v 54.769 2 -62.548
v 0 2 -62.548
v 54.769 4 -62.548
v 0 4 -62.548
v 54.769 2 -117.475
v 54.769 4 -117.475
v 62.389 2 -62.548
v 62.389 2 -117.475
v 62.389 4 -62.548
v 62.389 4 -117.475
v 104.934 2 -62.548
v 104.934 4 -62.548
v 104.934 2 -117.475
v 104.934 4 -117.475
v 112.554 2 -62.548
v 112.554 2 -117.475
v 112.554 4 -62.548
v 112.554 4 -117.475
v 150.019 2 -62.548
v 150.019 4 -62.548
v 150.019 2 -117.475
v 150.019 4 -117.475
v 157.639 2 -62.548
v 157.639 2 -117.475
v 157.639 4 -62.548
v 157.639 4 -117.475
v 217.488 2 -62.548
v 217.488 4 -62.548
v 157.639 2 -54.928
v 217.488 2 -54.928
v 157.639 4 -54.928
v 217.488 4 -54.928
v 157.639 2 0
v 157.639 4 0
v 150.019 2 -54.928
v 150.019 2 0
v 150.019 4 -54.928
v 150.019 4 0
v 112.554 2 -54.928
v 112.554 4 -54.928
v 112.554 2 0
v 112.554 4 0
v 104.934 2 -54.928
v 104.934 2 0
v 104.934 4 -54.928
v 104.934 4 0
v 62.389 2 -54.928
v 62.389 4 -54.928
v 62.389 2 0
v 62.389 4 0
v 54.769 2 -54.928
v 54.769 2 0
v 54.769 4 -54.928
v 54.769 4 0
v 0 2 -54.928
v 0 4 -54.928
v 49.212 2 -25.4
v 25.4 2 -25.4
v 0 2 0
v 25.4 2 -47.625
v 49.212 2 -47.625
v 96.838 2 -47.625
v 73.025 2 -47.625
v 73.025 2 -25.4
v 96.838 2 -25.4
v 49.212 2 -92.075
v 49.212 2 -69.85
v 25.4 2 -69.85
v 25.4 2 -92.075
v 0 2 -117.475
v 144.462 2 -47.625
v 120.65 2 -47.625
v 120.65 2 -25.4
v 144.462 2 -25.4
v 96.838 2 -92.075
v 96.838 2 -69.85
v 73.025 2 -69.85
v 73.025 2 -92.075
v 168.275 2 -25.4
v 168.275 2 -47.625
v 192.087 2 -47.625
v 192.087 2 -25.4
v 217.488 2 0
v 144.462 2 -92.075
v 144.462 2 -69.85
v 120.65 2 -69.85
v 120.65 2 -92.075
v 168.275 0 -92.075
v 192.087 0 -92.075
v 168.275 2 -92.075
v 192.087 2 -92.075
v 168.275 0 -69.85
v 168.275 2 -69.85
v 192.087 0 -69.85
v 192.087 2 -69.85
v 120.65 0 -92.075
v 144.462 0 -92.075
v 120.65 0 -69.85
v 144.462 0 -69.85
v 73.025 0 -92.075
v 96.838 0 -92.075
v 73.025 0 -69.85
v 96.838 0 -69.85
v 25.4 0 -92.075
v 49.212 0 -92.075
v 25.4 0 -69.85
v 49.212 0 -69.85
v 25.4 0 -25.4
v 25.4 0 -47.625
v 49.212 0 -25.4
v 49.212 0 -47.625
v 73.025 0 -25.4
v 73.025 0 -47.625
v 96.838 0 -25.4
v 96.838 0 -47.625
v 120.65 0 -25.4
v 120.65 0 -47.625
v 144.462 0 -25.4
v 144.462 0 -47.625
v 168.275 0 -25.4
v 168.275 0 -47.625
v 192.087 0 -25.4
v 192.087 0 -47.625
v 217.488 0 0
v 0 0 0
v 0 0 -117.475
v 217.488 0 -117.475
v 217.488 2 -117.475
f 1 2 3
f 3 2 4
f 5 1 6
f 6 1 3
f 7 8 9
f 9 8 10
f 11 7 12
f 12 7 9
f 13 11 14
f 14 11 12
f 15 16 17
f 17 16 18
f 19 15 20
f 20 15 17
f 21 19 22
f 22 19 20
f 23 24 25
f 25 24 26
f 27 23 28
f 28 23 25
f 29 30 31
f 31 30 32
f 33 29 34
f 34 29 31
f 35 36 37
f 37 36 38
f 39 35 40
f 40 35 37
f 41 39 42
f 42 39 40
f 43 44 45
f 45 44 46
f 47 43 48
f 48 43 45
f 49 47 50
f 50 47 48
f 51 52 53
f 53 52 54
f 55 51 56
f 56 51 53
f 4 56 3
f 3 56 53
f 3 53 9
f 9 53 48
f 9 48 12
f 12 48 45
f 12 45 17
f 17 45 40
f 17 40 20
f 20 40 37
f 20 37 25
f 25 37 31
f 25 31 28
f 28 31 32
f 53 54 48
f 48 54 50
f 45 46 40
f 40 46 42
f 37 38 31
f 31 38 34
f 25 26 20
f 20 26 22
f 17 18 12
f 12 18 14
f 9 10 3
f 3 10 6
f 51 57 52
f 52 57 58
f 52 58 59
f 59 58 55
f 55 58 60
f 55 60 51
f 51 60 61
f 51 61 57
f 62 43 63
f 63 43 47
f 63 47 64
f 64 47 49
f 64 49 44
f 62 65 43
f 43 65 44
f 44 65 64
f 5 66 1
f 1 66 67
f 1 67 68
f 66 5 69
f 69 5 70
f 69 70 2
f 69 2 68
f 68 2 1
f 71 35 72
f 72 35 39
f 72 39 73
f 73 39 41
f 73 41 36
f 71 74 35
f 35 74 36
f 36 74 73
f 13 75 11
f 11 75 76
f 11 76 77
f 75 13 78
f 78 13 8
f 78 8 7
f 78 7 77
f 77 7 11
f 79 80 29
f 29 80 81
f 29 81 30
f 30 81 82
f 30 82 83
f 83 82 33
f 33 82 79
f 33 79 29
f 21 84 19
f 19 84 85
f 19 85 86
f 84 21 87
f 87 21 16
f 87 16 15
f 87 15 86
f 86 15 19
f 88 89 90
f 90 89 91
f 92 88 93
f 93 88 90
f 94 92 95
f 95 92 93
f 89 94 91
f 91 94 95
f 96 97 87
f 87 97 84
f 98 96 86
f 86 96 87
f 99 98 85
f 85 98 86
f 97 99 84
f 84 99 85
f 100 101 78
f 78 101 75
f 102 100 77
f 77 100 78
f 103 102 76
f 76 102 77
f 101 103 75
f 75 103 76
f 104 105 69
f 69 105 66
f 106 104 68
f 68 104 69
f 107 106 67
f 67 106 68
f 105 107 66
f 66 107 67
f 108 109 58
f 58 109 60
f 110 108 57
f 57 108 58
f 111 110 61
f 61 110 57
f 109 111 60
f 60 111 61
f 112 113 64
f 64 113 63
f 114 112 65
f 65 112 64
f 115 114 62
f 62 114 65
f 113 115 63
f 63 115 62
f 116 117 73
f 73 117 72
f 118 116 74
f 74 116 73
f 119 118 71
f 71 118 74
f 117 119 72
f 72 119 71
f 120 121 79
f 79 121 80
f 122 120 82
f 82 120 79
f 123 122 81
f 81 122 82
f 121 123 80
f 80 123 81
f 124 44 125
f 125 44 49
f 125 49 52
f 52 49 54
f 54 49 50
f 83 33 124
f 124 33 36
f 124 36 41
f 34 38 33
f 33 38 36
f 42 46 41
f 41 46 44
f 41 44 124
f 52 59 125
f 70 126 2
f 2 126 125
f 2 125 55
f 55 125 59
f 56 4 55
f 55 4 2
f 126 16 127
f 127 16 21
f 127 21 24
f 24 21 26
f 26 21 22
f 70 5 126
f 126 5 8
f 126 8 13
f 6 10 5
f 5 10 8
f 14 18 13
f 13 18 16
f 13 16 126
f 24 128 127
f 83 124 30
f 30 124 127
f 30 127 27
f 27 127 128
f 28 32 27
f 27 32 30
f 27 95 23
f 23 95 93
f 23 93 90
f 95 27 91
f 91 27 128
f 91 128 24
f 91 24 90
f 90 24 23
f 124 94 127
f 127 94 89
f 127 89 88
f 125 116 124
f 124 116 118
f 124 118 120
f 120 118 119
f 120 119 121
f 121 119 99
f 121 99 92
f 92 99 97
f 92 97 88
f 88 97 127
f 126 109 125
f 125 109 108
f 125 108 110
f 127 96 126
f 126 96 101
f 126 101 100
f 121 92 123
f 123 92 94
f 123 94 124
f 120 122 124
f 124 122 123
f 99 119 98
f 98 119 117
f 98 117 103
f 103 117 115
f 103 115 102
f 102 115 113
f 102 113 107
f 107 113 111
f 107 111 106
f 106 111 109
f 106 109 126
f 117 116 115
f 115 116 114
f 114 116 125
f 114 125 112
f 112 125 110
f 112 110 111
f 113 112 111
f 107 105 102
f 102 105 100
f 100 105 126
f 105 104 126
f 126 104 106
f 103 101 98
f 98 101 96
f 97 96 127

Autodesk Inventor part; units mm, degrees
ref_plane "YZ Plane" through (0, 0, 0) normal (1, 0, 0) x (0, 1, 0)
ref_plane "XZ Plane" through (0, 0, 0) normal (0, 1, 0) x (-1, 0, 0)
ref_plane "XY Plane" through (0, 0, 0) normal (0, 0, 1) x (1, 0, 0)
sketch "Sketch1" plane through (0, 0, 0) normal (0, 1, 0) x (-1, 0, 0)
  line L0 (0, 0) -> (-25.4, 0) construction
  line L1 (-25.4, 0) -> (-25.4, -25.4) construction
  line L2 (-25.4, -25.4) -> (0, -25.4) construction
  line L3 (0, -25.4) -> (0, 0) construction
  line L4 (-25.4, -25.4) -> (-49.2125, -25.4) construction
  line L5 (-49.2125, -25.4) -> (-49.2125, -47.625) construction
  line L6 (-49.2125, -47.625) -> (-25.4, -47.625) construction
  line L7 (-25.4, -47.625) -> (-25.4, -25.4) construction
  line L8 (-73.025, -25.4) -> (-96.8375, -25.4) construction
  line L9 (-96.8375, -25.4) -> (-96.8375, -47.625) construction
  line L10 (-96.8375, -47.625) -> (-73.025, -47.625) construction
  line L11 (-73.025, -47.625) -> (-73.025, -25.4) construction
  line L12 (-120.65, -25.4) -> (-144.4625, -25.4) construction
  line L13 (-144.4625, -25.4) -> (-144.4625, -47.625) construction
  line L14 (-144.4625, -47.625) -> (-120.65, -47.625) construction
  line L15 (-120.65, -47.625) -> (-120.65, -25.4) construction
  line L16 (-168.275, -25.4) -> (-192.0875, -25.4) construction
  line L17 (-192.0875, -25.4) -> (-192.0875, -47.625) construction
  line L18 (-192.0875, -47.625) -> (-168.275, -47.625) construction
  line L19 (-168.275, -47.625) -> (-168.275, -25.4) construction
  line L20 (-25.4, -69.85) -> (-49.2125, -69.85) construction
  line L21 (-49.2125, -69.85) -> (-49.2125, -92.075) construction
  line L22 (-49.2125, -92.075) -> (-25.4, -92.075) construction
  line L23 (-25.4, -92.075) -> (-25.4, -69.85) construction
  line L24 (-73.025, -69.85) -> (-96.8375, -69.85) construction
  line L25 (-96.8375, -69.85) -> (-96.8375, -92.075) construction
  line L26 (-96.8375, -92.075) -> (-73.025, -92.075) construction
  line L27 (-73.025, -92.075) -> (-73.025, -69.85) construction
  line L28 (-120.65, -69.85) -> (-144.4625, -69.85) construction
  line L29 (-144.4625, -69.85) -> (-144.4625, -92.075) construction
  line L30 (-144.4625, -92.075) -> (-120.65, -92.075) construction
  line L31 (-120.65, -92.075) -> (-120.65, -69.85) construction
  line L32 (-168.275, -69.85) -> (-192.0875, -69.85) construction
  line L33 (-192.0875, -69.85) -> (-192.0875, -92.075) construction
  line L34 (-192.0875, -92.075) -> (-168.275, -92.075) construction
  line L35 (-168.275, -92.075) -> (-168.275, -69.85) construction
  line L36 (-192.0875, -92.075) -> (-217.4875, -92.075) construction
  line L37 (-217.4875, -92.075) -> (-217.4875, -117.475) construction
  line L38 (-217.4875, -117.475) -> (-192.0875, -117.475) construction
  line L39 (-192.0875, -117.475) -> (-192.0875, -92.075) construction
  line L40 (0, 0) -> (-217.4875, 0)
  line L41 (-217.4875, 0) -> (-217.4875, -117.475)
  line L42 (-217.4875, -117.475) -> (0, -117.475)
  line L43 (0, -117.475) -> (0, 0)
  line L44 (-192.0875, -92.075) -> (-168.275, -92.075)
  line L45 (-168.275, -92.075) -> (-168.275, -69.85)
  line L46 (-168.275, -69.85) -> (-192.0875, -69.85)
  line L47 (-192.0875, -69.85) -> (-192.0875, -92.075)
  line L48 (-144.4625, -92.075) -> (-120.65, -92.075)
  line L49 (-120.65, -92.075) -> (-120.65, -69.85)
  line L50 (-120.65, -69.85) -> (-144.4625, -69.85)
  line L51 (-144.4625, -69.85) -> (-144.4625, -92.075)
  line L52 (-96.8375, -92.075) -> (-73.025, -92.075)
  line L53 (-73.025, -92.075) -> (-73.025, -69.85)
  line L54 (-73.025, -69.85) -> (-96.8375, -69.85)
  line L55 (-96.8375, -69.85) -> (-96.8375, -92.075)
  line L56 (-49.2125, -92.075) -> (-25.4, -92.075)
  line L57 (-25.4, -92.075) -> (-25.4, -69.85)
  line L58 (-25.4, -69.85) -> (-49.2125, -69.85)
  line L59 (-49.2125, -69.85) -> (-49.2125, -92.075)
  line L60 (-25.4, -47.625) -> (-49.2125, -47.625)
  line L61 (-49.2125, -47.625) -> (-49.2125, -25.4)
  line L62 (-49.2125, -25.4) -> (-25.4, -25.4)
  line L63 (-25.4, -25.4) -> (-25.4, -47.625)
  line L64 (-73.025, -47.625) -> (-96.8375, -47.625)
  line L65 (-96.8375, -47.625) -> (-96.8375, -25.4)
  line L66 (-96.8375, -25.4) -> (-73.025, -25.4)
  line L67 (-73.025, -25.4) -> (-73.025, -47.625)
  line L68 (-120.65, -47.625) -> (-144.4625, -47.625)
  line L69 (-144.4625, -47.625) -> (-144.4625, -25.4)
  line L70 (-144.4625, -25.4) -> (-120.65, -25.4)
  line L71 (-120.65, -25.4) -> (-120.65, -47.625)
  line L72 (-168.275, -47.625) -> (-192.0875, -47.625)
  line L73 (-192.0875, -47.625) -> (-192.0875, -25.4)
  line L74 (-192.0875, -25.4) -> (-168.275, -25.4)
  line L75 (-168.275, -25.4) -> (-168.275, -47.625)
  dimension "d1" = 25.4
  dimension "d2" = 23.8125
  dimension "d3" = 22.225
  dimension "d6" = 47.625
  dimension "d9" = 44.45
  dimension "d12" = 25.4
  dimension "d13" = 25.4
extrude "Extrusion1" add sketch "Sketch1" along normal blind 2
sketch "Sketch2" plane through (0, 2, 0) normal (0, 1, 0) x (1, 0, 0)
  line L0 (217.4875, 0) -> (217.4875, 117.475) construction
  line L1 (217.4875, 117.475) -> (0, 117.475) construction
  line L2 (0, 117.475) -> (0, 0) construction
  line L3 (0, 0) -> (217.4875, 0) construction
  line L4 (168.275, 47.625) -> (192.0875, 47.625) construction
  line L5 (192.0875, 47.625) -> (192.0875, 25.4) construction
  line L6 (192.0875, 25.4) -> (168.275, 25.4) construction
  line L7 (168.275, 25.4) -> (168.275, 47.625) construction
  line L8 (120.65, 47.625) -> (144.4625, 47.625) construction
  line L9 (144.4625, 47.625) -> (144.4625, 25.4) construction
  line L10 (144.4625, 25.4) -> (120.65, 25.4) construction
  line L11 (120.65, 25.4) -> (120.65, 47.625) construction
  line L12 (73.025, 47.625) -> (96.8375, 47.625) construction
  line L13 (96.8375, 47.625) -> (96.8375, 25.4) construction
  line L14 (96.8375, 25.4) -> (73.025, 25.4) construction
  line L15 (73.025, 25.4) -> (73.025, 47.625) construction
  line L16 (25.4, 47.625) -> (49.2125, 47.625) construction
  line L17 (49.2125, 47.625) -> (49.2125, 25.4) construction
  line L18 (49.2125, 25.4) -> (25.4, 25.4) construction
  line L19 (25.4, 25.4) -> (25.4, 47.625) construction
  line L20 (49.2125, 92.075) -> (49.2125, 69.85) construction
  line L21 (49.2125, 69.85) -> (25.4, 69.85) construction
  line L22 (25.4, 69.85) -> (25.4, 92.075) construction
  line L23 (25.4, 92.075) -> (49.2125, 92.075) construction
  line L24 (96.8375, 92.075) -> (96.8375, 69.85) construction
  line L25 (96.8375, 69.85) -> (73.025, 69.85) construction
  line L26 (73.025, 69.85) -> (73.025, 92.075) construction
  line L27 (73.025, 92.075) -> (96.8375, 92.075) construction
  line L28 (144.4625, 92.075) -> (144.4625, 69.85) construction
  line L29 (144.4625, 69.85) -> (120.65, 69.85) construction
  line L30 (120.65, 69.85) -> (120.65, 92.075) construction
  line L31 (120.65, 92.075) -> (144.4625, 92.075) construction
  line L32 (192.0875, 92.075) -> (192.0875, 69.85) construction
  line L33 (192.0875, 69.85) -> (168.275, 69.85) construction
  line L34 (168.275, 69.85) -> (168.275, 92.075) construction
  line L35 (168.275, 92.075) -> (192.0875, 92.075) construction
  line L36 (0, 54.9275) -> (217.4875, 54.9275) construction
  line L37 (217.4875, 54.9275) -> (217.4875, 62.5475) construction
  line L38 (217.4875, 62.5475) -> (0, 62.5475) construction
  line L39 (0, 62.5475) -> (0, 54.9275) construction
  line L40 (0, 54.9275) -> (217.4875, 62.5475) construction
  line L41 (217.4875, 54.9275) -> (0, 62.5475) construction
  line L42 (104.9338, 0) -> (112.5538, 0) construction
  line L43 (112.5538, 0) -> (112.5537, 117.475) construction
  line L44 (112.5537, 117.475) -> (104.9337, 117.475) construction
  line L45 (104.9337, 117.475) -> (104.9338, 0) construction
  line L46 (104.9338, 0) -> (112.5537, 117.475) construction
  line L47 (112.5538, 0) -> (104.9337, 117.475) construction
  line L48 (0, 62.5475) -> (217.4875, 62.5475)
  line L49 (217.4875, 62.5475) -> (217.4875, 54.9275)
  line L50 (217.4875, 54.9275) -> (0, 54.9275)
  line L51 (0, 54.9275) -> (0, 62.5475)
  line L52 (104.9337, 117.475) -> (112.5537, 117.475)
  line L53 (112.5537, 117.475) -> (112.5538, 0)
  line L54 (112.5538, 0) -> (104.9338, 0)
  line L55 (104.9338, 0) -> (104.9337, 117.475)
  line L56 (49.2125, 92.075) -> (73.025, 92.075) construction
  line L57 (73.025, 92.075) -> (73.025, 69.85) construction
  line L58 (73.025, 69.85) -> (49.2125, 69.85) construction
  line L59 (49.2125, 69.85) -> (49.2125, 92.075) construction
  line L60 (168.275, 92.075) -> (144.4625, 92.075) construction
  line L61 (144.4625, 92.075) -> (144.4625, 69.85) construction
  line L62 (144.4625, 69.85) -> (168.275, 69.85) construction
  line L63 (168.275, 69.85) -> (168.275, 92.075) construction
  line L64 (217.4875, 117.475) -> (0, 117.475) projected
  line L65 (54.7688, 0) -> (62.3888, 0)
  line L66 (62.3888, 0) -> (62.3888, 117.475)
  line L67 (62.3888, 117.475) -> (54.7688, 117.475)
  line L68 (54.7688, 117.475) -> (54.7688, 0)
  line L69 (54.7688, 0) -> (62.3888, 117.475) construction
  line L70 (62.3888, 0) -> (54.7688, 117.475) construction
  line L71 (150.0187, 0) -> (157.6388, 0)
  line L72 (157.6388, 0) -> (157.6387, 117.475)
  line L73 (157.6387, 117.475) -> (150.0187, 117.475)
  line L74 (150.0187, 117.475) -> (150.0187, 0)
  line L75 (150.0187, 0) -> (157.6387, 117.475) construction
  line L76 (157.6388, 0) -> (150.0187, 117.475) construction
  point P0 (108.7438, 58.7375)
  point P1 (108.7438, 58.7375)
  point P2 (58.5787, 58.7375)
  point P3 (153.8288, 58.7375)
  point P4 (54.7688, 54.9275)
  point P5 (62.3888, 54.9275)
  point P6 (104.9338, 54.9275)
  point P7 (112.5538, 54.9275)
  point P8 (150.0187, 54.9275)
  point P9 (157.6388, 54.9275)
  point P10 (157.6388, 62.5475)
  point P11 (150.0187, 62.5475)
  point P12 (112.5537, 62.5475)
  point P13 (104.9338, 62.5475)
  point P14 (62.3888, 62.5475)
  point P15 (54.7688, 62.5475)
  dimension "d16" = 7.62
  dimension "d17" = 7.62
  dimension "d18" = 7.62
  dimension "d19" = 7.62
extrude "Extrusion2" add sketch "Sketch2" along normal blind 2 contours L48 L68 L50 L51 | L68 L64 L66 L48 | L48 L66 L50 L68 | L48 L55 L50 L66 | L50 L66 L65 L68 | L55 L52 L53 L48 | L48 L53 L50 L55 | L48 L74 L50 L53 | L50 L53 L54 L55 | L74 L64 L72 L48 | L48 L72 L50 L74 | L48 L49 L50 L72 | L50 L72 L71 L74
properties part number "test_front_cover"
